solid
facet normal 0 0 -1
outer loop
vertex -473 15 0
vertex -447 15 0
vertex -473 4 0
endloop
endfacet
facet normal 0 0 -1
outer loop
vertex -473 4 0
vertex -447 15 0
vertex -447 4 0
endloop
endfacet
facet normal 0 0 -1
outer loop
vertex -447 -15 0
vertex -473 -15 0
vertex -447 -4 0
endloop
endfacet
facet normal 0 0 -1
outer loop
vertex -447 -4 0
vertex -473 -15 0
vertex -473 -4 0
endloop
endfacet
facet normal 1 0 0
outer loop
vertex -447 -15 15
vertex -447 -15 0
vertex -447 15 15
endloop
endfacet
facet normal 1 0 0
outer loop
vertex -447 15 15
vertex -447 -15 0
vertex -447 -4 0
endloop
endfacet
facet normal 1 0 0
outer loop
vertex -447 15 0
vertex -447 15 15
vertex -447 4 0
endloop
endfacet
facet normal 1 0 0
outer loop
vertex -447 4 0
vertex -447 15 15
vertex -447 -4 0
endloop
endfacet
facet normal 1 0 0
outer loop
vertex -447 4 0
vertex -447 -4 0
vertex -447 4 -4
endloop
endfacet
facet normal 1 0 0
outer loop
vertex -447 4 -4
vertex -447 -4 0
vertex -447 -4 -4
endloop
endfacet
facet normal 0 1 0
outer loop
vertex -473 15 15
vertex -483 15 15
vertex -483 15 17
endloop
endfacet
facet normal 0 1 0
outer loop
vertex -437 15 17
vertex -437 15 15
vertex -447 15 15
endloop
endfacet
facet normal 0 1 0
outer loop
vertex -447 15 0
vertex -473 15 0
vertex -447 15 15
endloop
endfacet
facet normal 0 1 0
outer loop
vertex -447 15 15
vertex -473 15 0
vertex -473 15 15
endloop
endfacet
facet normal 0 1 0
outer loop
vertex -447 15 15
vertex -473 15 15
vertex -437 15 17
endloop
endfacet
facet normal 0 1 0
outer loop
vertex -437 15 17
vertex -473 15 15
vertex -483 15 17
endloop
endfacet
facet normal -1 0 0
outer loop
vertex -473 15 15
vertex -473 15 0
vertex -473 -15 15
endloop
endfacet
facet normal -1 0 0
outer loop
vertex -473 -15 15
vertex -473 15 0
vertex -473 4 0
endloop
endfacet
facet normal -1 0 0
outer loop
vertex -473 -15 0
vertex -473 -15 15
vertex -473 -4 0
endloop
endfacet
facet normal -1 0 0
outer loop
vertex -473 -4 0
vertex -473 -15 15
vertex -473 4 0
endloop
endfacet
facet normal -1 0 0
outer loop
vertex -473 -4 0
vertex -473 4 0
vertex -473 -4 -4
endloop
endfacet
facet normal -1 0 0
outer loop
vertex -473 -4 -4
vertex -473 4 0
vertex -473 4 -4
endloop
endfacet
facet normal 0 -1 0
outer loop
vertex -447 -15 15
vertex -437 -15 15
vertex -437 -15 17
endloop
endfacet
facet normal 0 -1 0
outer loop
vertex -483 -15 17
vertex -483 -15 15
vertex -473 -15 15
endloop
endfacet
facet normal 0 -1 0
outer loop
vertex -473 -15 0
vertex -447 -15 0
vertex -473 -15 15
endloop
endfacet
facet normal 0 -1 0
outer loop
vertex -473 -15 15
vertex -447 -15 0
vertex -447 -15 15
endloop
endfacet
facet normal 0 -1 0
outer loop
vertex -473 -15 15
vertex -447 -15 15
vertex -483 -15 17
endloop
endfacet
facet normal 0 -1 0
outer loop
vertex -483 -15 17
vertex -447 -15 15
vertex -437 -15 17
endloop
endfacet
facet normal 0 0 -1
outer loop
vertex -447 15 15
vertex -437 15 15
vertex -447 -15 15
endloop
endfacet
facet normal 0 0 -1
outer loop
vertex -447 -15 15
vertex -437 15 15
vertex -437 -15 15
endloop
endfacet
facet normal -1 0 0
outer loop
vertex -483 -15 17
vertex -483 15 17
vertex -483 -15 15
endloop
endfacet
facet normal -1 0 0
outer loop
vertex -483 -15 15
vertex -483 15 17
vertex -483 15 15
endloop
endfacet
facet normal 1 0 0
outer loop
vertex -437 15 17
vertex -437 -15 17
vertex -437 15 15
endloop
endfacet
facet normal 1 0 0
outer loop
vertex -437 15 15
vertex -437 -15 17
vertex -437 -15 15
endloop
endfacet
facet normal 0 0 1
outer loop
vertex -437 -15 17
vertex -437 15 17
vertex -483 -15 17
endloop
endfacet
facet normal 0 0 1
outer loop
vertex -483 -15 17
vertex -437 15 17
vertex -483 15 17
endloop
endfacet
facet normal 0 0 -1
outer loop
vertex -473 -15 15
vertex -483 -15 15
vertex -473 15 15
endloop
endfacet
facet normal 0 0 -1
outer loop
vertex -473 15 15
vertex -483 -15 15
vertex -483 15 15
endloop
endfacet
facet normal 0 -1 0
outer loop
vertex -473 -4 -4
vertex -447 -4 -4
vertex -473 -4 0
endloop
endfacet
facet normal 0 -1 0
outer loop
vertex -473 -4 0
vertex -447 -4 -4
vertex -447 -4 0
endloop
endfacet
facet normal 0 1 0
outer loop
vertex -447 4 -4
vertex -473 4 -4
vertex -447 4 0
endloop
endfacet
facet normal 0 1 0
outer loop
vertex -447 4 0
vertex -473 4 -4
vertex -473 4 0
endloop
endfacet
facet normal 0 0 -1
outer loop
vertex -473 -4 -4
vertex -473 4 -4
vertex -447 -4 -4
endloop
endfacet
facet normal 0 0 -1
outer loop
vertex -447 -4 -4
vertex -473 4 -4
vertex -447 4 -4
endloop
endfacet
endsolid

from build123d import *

# Parameters (mm, degrees)
SKETCH_1_W      = 26
SKETCH_1_H      = 30
EXTRUDE_1_DEPTH = 15
SKETCH_2_W      = 46
SKETCH_2_H      = 30
EXTRUDE_2_DEPTH = 2
SKETCH_4_W      = 26
SKETCH_4_H      = 8
EXTRUDE_3_DEPTH = 4


with BuildPart() as part:
    # 草图1 → 凸台-拉伸1 (new body)
    with BuildSketch(Plane.XY):
        with Locations((-460, 0)):
            Rectangle(SKETCH_1_W, SKETCH_1_H)
    extrude(amount=EXTRUDE_1_DEPTH)

    # 草图2 → 凸台-拉伸2 (add)
    with BuildSketch(Plane.XY.offset(15)):
        with Locations((-460, 0)):
            Rectangle(SKETCH_2_W, SKETCH_2_H)
    extrude(amount=EXTRUDE_2_DEPTH)

    # 草图4 → 凸台-拉伸3 (add)
    with BuildSketch(Plane(origin=(0, 0, 0), x_dir=(-1, 0, 0), z_dir=(0, 0, -1))):
        with Locations((460, 0)):
            Rectangle(SKETCH_4_W, SKETCH_4_H)
    extrude(amount=EXTRUDE_3_DEPTH)


solid = part.part
